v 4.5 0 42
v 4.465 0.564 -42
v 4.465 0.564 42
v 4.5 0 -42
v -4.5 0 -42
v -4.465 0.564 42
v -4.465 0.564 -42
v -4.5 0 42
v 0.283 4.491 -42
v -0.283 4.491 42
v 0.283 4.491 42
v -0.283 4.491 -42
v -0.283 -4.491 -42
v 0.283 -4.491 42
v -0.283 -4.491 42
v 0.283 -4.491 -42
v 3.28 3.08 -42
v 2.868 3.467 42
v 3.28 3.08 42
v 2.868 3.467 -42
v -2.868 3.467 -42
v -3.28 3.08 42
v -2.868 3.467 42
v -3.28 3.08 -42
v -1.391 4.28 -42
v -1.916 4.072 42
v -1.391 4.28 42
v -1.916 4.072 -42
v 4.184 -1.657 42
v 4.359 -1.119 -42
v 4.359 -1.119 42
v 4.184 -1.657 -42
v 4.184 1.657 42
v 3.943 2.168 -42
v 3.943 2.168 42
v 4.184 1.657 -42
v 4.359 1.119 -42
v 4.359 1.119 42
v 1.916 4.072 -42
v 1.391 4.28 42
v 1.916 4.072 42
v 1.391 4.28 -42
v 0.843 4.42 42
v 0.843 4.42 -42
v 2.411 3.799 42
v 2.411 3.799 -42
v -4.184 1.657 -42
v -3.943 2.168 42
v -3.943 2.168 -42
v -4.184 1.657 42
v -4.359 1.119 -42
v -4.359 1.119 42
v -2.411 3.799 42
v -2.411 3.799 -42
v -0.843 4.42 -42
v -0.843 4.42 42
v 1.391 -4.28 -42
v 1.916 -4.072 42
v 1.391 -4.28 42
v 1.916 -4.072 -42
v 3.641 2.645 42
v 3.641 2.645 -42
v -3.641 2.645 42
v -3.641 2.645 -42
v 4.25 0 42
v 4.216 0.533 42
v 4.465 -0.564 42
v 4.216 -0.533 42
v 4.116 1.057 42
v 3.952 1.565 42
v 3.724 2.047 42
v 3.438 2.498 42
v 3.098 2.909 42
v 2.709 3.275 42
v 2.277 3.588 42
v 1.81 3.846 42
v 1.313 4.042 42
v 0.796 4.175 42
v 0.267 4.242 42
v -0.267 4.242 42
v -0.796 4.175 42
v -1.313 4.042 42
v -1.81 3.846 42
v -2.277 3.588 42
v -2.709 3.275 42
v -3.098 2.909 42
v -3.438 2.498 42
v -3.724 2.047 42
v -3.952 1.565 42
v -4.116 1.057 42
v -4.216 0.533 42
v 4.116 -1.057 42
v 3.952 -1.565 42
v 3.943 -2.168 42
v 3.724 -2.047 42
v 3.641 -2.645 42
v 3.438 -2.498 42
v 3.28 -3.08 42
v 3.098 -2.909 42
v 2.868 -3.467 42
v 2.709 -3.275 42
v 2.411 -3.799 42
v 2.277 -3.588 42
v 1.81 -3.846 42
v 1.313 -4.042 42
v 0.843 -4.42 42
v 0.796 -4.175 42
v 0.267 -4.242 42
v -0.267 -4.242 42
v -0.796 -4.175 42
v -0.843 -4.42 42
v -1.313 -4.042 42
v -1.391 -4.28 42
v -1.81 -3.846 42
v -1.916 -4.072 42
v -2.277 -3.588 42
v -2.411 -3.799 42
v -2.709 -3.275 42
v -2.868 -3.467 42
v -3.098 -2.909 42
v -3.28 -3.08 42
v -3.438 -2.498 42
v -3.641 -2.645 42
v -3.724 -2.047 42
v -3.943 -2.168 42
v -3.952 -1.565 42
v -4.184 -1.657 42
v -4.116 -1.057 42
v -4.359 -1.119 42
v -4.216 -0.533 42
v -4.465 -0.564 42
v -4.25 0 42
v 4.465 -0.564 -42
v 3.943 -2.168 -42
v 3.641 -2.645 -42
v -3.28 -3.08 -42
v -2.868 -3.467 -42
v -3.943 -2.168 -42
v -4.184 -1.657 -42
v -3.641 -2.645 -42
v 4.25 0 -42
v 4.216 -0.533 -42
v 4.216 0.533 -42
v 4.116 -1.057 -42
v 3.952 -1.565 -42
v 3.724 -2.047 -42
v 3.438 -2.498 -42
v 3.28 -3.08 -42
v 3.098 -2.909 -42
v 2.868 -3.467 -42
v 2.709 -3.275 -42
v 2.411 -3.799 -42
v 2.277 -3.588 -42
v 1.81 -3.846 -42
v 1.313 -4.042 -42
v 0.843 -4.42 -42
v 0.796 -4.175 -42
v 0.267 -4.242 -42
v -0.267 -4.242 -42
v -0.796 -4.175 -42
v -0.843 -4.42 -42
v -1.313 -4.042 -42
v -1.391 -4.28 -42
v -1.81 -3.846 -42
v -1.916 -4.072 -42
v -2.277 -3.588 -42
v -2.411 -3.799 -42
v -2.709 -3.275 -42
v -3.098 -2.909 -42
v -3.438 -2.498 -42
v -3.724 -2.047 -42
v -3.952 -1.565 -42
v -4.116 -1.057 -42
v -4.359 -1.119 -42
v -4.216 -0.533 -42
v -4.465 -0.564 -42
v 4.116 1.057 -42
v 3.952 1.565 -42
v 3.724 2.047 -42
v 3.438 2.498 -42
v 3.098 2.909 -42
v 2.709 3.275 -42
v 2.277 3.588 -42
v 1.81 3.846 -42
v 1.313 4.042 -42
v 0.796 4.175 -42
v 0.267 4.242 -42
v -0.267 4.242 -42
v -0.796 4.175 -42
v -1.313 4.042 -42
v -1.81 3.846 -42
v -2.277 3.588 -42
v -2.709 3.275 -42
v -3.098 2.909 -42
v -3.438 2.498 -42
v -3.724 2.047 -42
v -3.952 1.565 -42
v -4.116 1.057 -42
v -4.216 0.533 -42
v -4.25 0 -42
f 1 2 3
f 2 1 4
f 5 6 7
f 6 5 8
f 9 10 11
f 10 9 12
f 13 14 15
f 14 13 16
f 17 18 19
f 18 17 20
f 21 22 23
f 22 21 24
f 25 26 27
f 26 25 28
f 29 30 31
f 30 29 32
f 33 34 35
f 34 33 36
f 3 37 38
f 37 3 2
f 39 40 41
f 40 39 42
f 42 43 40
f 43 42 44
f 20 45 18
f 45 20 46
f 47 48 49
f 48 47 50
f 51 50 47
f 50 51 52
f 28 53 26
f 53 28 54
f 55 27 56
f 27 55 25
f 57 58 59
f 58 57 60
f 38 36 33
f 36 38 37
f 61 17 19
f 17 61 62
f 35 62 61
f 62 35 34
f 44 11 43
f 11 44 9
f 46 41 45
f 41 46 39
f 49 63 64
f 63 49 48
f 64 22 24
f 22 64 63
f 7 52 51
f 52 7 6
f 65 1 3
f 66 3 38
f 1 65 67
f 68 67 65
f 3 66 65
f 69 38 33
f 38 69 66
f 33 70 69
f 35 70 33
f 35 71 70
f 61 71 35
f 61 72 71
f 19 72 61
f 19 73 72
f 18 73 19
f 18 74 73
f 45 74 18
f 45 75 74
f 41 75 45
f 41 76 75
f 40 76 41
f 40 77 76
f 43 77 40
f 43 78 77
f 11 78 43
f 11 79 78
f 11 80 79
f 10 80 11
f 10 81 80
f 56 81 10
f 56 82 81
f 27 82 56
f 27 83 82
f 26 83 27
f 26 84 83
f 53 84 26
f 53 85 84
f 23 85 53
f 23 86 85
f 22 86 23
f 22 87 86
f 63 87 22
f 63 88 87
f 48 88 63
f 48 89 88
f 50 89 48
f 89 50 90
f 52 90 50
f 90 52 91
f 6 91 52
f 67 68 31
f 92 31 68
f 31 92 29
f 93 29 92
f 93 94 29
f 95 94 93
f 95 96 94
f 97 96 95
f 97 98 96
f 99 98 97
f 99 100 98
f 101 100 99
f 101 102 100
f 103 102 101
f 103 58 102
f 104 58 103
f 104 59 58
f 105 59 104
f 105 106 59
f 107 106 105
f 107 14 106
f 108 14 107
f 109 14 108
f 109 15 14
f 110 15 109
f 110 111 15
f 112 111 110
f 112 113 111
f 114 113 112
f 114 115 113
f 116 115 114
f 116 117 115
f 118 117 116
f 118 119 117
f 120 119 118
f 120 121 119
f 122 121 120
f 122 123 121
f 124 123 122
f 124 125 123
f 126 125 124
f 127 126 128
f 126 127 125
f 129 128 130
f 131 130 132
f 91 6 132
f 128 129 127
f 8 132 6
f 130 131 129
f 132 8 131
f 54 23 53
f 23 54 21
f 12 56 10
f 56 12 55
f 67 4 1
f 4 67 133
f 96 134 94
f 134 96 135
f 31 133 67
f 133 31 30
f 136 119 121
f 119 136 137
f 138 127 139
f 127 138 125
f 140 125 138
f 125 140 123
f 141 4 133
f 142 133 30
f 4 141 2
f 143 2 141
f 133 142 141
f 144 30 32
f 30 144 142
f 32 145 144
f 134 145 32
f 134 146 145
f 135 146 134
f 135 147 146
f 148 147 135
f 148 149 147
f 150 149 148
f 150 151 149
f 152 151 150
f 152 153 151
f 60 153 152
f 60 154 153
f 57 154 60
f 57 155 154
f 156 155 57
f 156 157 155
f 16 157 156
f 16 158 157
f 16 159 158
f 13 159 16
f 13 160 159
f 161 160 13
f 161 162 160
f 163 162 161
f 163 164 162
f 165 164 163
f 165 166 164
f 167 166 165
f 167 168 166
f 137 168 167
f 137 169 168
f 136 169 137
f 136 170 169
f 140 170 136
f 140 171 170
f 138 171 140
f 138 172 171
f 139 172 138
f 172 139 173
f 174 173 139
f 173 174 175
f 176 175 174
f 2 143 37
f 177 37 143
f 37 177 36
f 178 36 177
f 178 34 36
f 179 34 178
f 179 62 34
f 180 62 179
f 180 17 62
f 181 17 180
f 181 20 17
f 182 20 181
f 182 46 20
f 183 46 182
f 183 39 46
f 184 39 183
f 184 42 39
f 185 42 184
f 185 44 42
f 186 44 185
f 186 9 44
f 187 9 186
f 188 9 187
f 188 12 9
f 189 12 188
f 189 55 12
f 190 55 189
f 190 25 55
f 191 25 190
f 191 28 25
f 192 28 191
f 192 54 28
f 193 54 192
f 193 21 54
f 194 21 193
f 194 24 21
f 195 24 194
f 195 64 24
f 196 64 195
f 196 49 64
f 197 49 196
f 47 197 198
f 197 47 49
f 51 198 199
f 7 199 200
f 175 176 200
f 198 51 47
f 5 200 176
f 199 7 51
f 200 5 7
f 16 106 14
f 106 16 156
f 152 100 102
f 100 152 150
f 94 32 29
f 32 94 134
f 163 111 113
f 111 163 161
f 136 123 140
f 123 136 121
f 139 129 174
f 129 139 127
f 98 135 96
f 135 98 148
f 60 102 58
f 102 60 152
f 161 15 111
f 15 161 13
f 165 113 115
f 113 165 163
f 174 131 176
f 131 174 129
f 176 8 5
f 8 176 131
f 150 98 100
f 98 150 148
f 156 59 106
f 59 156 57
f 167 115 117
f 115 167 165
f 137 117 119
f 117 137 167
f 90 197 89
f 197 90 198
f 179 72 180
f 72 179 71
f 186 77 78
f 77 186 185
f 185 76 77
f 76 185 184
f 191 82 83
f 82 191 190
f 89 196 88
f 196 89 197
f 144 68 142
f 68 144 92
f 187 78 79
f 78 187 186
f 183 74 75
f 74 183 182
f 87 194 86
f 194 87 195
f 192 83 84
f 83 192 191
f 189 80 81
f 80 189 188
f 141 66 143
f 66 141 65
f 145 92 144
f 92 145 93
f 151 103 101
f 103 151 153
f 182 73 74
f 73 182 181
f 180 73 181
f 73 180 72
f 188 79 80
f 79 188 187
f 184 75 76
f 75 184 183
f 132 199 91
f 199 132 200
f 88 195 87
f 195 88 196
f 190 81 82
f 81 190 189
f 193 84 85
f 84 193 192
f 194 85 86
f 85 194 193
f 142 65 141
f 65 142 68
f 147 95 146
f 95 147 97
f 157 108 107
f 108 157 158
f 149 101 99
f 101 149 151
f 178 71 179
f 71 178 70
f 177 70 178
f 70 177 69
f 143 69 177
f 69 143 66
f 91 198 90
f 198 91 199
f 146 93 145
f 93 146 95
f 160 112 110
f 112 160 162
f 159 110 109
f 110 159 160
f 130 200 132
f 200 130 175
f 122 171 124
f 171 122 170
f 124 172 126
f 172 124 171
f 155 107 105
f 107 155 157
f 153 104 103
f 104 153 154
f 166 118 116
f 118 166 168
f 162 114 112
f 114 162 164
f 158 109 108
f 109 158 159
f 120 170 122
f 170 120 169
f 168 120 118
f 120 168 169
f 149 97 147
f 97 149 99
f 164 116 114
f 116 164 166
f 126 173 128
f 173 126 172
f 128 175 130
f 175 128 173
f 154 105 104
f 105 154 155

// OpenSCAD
$fn = 50;


difference() {
	union() {
		translate(v = [0, 0, -42.0000000000]) {
			cylinder(h = 84, r = 4.5000000000);
		}
	}
	union() {
		translate(v = [0, 0, -100.0000000000]) {
			cylinder(h = 200, r = 4.2500000000);
		}
	}
}
